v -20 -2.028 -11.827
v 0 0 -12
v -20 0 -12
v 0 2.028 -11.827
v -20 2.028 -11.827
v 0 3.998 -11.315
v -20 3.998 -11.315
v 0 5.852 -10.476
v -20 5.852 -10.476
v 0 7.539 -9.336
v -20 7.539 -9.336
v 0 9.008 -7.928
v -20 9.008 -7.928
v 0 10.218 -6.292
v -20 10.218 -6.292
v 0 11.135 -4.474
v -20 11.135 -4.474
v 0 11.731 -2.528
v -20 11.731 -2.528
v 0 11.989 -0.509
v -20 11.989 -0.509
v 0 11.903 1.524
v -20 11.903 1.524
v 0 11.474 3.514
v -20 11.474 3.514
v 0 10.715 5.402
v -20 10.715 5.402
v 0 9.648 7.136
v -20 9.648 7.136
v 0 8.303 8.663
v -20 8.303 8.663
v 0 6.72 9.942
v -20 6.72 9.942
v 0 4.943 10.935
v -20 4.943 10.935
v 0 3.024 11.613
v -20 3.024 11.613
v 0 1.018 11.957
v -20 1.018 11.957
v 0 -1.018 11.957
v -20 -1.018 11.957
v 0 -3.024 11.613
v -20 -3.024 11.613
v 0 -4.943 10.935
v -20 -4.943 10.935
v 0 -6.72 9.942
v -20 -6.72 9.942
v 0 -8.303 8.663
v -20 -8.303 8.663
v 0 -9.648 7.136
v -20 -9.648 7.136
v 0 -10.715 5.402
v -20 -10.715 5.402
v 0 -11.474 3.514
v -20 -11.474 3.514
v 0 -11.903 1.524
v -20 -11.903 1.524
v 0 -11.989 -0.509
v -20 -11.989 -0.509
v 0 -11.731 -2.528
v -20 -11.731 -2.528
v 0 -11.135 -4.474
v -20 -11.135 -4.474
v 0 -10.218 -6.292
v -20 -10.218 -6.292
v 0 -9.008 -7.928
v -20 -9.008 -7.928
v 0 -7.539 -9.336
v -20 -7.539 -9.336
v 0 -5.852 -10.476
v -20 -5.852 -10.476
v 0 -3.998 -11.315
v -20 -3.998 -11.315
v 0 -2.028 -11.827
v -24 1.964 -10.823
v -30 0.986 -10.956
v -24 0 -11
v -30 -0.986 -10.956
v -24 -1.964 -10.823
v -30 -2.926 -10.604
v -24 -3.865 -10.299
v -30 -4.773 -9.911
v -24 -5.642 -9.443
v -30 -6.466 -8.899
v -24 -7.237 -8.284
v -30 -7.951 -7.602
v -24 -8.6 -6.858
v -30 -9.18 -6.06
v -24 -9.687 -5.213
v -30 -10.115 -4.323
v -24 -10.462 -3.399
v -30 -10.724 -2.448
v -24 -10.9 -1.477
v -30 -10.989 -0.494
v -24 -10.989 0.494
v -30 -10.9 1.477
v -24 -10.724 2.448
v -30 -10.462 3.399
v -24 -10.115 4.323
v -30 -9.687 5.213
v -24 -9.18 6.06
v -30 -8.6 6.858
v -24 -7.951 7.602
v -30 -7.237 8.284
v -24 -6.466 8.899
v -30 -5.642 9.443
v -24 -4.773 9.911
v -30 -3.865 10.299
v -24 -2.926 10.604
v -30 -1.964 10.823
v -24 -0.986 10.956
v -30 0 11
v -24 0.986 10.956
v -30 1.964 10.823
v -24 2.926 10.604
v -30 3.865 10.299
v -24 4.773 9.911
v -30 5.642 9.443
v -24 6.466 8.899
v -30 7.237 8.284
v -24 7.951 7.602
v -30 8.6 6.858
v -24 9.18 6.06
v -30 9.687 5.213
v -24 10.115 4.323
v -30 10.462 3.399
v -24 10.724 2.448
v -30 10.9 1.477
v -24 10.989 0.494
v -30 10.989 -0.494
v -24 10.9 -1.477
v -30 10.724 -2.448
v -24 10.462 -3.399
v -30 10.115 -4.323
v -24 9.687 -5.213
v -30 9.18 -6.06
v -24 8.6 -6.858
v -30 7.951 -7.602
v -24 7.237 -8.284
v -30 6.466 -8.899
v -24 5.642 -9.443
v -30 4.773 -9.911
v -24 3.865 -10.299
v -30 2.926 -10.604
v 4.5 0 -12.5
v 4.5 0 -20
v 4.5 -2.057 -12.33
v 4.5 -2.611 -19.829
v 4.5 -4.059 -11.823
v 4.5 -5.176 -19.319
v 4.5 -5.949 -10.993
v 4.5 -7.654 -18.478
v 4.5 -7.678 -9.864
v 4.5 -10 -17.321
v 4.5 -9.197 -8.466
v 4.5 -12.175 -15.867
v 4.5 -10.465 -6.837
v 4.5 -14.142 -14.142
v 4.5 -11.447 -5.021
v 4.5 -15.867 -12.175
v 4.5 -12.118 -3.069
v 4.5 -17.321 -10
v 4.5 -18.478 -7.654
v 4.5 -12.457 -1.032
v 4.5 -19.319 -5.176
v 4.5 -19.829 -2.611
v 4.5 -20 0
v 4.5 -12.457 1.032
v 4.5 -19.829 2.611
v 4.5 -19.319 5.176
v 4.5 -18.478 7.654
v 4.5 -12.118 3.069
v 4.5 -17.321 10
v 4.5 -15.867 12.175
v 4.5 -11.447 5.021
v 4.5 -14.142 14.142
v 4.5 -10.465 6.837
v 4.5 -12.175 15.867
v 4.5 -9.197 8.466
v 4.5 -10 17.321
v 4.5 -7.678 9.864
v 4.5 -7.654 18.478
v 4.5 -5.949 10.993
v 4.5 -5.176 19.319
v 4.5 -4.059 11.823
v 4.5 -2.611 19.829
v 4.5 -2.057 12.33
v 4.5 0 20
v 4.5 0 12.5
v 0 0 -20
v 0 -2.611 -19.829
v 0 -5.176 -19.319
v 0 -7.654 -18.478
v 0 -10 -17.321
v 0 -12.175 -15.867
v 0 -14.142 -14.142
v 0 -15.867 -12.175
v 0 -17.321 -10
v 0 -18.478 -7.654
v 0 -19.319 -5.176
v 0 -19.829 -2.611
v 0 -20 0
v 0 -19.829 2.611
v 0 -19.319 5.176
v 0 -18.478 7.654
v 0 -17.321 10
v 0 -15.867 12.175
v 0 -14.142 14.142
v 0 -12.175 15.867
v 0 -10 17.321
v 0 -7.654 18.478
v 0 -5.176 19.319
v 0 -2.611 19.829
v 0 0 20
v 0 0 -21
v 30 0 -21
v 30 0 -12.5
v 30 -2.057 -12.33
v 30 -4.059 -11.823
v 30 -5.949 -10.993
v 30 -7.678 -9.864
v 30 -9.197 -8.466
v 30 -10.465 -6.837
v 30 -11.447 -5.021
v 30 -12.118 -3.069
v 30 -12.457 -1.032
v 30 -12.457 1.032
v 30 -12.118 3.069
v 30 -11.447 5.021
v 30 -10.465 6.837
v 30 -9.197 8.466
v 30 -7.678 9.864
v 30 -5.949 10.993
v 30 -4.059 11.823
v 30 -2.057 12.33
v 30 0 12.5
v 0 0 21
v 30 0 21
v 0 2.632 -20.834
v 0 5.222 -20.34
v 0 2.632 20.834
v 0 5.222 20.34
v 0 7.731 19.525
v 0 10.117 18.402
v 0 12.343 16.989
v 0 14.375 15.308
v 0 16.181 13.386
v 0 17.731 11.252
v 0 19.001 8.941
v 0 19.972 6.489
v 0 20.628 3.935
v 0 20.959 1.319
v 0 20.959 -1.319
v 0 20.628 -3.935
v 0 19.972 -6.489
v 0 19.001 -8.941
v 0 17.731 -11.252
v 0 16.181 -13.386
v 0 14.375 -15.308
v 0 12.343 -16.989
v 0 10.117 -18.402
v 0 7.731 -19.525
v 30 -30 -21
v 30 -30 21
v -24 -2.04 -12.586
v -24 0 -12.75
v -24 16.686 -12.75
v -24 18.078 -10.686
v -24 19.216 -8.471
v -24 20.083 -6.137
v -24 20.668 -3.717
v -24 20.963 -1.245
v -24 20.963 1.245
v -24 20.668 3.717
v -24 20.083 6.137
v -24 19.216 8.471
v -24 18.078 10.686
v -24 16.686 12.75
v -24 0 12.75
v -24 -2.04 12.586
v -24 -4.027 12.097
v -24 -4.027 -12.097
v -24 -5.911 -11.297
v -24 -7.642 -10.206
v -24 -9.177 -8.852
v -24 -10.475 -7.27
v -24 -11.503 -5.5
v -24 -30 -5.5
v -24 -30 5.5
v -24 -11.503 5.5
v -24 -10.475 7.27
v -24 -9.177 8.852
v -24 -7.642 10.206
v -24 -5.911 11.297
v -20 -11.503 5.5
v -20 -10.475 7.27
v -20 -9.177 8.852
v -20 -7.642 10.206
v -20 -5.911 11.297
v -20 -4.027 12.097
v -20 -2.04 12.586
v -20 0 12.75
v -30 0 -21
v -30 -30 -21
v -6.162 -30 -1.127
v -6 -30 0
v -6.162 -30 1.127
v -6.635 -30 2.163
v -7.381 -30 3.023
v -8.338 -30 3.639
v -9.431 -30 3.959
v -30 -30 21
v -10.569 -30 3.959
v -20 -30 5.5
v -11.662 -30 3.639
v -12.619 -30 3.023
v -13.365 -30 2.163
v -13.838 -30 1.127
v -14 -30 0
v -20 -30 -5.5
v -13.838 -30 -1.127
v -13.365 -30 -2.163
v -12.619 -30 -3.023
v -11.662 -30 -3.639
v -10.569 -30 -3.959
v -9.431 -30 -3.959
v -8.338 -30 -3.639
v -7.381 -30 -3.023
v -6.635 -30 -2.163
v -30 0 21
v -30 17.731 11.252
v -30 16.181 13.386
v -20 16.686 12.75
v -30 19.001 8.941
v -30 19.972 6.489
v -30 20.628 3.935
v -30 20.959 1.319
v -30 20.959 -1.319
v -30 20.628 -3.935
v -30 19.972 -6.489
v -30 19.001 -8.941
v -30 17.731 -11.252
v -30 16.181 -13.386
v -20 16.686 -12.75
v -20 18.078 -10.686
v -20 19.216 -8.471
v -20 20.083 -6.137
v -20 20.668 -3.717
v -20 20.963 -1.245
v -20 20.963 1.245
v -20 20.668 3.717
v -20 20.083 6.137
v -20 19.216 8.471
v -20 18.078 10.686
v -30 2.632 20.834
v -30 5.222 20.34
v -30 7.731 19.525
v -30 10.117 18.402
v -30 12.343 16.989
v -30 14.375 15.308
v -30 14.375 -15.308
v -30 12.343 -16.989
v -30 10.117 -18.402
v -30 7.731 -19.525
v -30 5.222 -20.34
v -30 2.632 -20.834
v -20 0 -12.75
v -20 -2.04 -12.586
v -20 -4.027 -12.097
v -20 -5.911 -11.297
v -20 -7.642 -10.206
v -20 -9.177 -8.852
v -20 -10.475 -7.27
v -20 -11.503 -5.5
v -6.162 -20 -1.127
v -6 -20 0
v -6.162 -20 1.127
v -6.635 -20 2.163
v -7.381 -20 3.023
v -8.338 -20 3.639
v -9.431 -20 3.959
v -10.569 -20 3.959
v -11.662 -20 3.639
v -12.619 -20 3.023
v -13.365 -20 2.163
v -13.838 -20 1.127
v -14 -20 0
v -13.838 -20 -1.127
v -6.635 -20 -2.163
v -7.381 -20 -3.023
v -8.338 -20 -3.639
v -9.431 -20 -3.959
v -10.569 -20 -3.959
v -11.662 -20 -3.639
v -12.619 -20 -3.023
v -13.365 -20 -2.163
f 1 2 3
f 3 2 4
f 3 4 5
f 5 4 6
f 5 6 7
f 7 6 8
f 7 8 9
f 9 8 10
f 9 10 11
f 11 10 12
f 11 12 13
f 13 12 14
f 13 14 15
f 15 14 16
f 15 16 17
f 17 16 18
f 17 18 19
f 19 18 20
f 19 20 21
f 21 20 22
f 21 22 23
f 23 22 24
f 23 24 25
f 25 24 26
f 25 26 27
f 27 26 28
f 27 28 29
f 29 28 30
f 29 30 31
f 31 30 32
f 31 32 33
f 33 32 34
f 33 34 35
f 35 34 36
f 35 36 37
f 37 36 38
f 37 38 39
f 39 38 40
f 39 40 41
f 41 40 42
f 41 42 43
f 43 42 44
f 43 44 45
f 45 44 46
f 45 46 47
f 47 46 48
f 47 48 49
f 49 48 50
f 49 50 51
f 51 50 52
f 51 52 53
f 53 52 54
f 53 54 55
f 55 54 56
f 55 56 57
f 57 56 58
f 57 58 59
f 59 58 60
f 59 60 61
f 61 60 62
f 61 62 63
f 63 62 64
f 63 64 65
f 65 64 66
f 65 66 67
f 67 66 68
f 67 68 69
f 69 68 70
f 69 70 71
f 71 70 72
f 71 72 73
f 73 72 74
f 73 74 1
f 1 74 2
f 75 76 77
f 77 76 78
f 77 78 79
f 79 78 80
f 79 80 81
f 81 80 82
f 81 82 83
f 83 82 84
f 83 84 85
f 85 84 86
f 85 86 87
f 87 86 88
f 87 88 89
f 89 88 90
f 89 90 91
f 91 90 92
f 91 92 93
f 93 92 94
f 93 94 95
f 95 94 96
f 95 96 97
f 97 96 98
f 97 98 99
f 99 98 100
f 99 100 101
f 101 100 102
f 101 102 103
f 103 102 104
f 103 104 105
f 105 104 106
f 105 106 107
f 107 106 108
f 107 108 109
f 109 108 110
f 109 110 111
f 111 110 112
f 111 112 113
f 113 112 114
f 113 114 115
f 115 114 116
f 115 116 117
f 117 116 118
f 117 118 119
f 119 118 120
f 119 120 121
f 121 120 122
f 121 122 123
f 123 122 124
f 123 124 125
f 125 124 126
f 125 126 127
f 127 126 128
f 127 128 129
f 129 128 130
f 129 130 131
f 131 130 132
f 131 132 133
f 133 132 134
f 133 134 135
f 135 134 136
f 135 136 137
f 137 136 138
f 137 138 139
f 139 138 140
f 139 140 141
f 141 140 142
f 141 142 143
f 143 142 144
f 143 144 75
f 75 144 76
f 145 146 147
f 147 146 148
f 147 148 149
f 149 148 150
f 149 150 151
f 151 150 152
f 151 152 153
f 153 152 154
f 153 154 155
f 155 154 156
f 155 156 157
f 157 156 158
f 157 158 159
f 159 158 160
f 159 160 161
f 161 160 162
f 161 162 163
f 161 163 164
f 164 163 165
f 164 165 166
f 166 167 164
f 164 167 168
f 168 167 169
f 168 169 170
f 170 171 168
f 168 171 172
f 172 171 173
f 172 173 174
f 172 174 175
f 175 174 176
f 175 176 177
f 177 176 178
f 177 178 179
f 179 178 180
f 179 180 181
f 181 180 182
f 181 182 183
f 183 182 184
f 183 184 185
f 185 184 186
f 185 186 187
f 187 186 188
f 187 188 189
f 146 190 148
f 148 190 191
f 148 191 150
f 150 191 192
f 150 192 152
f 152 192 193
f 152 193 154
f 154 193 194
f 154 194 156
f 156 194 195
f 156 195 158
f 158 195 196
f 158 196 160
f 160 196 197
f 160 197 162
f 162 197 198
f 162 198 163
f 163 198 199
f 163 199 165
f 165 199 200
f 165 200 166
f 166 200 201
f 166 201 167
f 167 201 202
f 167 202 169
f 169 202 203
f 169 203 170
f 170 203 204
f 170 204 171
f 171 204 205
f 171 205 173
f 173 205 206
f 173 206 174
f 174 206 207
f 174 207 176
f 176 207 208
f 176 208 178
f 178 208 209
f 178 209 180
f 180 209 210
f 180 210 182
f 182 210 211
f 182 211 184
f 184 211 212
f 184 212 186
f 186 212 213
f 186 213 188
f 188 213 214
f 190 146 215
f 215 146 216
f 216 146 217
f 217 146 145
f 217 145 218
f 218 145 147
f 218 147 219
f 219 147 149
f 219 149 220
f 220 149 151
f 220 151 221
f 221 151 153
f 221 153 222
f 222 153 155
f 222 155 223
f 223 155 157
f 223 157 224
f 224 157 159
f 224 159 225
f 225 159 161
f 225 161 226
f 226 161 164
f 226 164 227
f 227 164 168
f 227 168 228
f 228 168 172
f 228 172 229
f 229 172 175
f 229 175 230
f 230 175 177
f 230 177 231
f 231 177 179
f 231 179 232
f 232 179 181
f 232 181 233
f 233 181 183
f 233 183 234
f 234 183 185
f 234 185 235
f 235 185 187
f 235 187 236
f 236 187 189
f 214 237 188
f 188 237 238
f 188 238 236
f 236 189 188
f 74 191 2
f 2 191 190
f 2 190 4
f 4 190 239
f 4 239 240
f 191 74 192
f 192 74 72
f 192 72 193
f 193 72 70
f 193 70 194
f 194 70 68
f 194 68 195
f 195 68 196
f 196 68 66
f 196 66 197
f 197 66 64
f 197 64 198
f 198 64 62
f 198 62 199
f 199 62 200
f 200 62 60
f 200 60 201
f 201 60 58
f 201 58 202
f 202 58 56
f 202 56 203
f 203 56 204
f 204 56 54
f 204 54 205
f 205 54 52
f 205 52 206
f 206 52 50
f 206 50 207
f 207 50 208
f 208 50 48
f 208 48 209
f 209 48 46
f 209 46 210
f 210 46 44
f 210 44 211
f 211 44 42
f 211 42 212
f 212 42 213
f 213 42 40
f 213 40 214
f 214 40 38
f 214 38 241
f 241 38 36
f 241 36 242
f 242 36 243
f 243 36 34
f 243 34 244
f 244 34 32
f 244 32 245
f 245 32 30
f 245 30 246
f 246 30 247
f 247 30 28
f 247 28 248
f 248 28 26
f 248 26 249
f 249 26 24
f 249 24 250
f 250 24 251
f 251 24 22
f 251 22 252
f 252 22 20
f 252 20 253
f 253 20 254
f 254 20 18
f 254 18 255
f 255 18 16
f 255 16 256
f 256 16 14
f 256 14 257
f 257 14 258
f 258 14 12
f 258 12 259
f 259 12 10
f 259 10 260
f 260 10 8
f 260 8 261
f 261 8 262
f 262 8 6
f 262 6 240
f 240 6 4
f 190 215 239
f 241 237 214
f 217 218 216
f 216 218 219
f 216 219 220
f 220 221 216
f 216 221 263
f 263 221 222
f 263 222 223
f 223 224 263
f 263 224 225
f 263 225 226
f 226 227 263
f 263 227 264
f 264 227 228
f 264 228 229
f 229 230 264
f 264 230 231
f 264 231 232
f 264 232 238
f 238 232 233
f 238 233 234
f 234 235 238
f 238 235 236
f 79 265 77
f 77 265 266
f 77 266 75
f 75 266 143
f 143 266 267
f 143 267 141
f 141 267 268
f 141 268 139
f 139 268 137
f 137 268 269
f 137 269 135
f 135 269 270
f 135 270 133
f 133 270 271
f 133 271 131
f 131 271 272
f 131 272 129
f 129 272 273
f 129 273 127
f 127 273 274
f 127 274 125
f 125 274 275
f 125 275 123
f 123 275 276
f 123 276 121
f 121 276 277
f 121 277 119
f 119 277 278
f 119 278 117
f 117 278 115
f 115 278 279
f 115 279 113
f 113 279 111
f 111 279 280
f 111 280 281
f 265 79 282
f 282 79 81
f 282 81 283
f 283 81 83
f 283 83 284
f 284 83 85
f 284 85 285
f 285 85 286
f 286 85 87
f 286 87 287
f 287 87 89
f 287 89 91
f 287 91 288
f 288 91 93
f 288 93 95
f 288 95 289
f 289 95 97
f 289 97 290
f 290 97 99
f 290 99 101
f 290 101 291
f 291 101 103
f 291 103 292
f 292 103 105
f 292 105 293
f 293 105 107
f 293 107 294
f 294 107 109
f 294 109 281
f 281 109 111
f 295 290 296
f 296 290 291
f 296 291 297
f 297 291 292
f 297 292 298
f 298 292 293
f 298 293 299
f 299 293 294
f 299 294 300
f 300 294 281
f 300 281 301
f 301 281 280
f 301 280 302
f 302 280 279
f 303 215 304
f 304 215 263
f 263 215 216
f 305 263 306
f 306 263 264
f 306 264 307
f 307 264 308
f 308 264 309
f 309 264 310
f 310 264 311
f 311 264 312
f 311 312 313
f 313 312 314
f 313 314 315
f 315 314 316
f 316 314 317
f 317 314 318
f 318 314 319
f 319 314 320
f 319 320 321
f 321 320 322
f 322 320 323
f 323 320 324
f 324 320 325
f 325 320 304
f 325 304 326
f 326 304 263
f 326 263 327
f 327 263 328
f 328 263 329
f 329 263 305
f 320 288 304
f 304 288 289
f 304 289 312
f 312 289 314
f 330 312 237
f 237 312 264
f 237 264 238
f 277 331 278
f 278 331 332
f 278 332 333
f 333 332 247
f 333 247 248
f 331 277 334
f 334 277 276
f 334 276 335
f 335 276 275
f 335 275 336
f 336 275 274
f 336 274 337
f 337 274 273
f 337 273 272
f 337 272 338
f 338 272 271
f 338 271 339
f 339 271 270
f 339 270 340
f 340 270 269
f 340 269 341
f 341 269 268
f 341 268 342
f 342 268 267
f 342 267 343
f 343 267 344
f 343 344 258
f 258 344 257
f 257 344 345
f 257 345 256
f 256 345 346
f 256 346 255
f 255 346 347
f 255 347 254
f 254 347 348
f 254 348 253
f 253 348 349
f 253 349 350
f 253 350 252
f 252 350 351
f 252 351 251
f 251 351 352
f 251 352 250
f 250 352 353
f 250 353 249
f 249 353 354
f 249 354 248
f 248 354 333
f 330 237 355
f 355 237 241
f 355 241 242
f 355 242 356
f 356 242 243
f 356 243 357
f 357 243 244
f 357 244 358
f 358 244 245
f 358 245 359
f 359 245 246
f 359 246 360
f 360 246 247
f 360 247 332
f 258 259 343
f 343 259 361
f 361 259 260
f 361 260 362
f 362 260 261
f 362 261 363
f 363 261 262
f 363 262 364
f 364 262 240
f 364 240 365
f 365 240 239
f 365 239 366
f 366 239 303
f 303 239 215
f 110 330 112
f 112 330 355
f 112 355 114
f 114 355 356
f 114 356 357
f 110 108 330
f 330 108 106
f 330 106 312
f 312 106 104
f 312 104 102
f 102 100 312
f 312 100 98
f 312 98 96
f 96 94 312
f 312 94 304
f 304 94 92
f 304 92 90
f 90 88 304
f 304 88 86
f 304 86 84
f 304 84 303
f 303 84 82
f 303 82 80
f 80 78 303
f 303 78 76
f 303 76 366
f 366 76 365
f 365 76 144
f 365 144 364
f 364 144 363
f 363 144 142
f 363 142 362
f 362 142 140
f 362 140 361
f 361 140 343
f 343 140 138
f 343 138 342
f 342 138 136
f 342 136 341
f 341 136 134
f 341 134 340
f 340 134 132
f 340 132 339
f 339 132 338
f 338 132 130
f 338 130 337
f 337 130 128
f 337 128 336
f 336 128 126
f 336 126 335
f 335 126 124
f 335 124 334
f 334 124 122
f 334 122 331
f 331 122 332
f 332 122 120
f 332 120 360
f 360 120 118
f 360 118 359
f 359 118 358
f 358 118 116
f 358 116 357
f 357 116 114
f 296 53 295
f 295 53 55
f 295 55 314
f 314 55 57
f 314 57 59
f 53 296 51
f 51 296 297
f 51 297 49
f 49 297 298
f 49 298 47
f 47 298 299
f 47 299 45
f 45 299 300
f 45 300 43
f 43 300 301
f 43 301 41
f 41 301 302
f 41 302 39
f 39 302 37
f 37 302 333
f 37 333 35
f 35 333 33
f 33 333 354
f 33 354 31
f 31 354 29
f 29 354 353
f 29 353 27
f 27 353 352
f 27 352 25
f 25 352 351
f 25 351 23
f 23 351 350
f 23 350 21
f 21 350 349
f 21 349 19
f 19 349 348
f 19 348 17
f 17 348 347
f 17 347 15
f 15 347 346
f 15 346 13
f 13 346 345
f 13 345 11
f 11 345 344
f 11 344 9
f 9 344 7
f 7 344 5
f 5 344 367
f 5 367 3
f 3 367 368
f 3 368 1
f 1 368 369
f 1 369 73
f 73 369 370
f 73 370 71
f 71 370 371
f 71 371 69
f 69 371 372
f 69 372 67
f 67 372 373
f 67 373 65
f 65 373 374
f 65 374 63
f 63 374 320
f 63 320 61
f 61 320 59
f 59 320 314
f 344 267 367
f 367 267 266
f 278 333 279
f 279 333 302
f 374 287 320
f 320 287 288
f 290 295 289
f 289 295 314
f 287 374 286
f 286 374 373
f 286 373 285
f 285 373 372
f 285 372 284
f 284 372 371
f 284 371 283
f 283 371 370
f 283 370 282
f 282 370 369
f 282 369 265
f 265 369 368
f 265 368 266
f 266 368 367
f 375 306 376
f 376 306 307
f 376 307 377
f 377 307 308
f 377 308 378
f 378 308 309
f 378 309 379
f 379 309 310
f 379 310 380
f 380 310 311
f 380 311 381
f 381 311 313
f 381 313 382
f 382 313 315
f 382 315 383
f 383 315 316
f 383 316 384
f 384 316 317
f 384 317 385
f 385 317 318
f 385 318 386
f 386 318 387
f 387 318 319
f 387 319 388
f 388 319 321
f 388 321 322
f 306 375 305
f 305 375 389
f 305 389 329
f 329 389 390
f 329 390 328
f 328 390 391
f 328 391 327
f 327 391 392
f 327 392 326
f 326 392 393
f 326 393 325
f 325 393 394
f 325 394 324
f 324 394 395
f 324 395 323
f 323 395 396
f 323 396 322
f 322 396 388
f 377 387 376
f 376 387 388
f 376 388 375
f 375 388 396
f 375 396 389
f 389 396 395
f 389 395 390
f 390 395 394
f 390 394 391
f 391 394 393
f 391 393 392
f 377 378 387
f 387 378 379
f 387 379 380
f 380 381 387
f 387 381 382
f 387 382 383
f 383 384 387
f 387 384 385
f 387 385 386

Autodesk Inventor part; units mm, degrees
ref_plane "YZ Plane" through (0, 0, 0) normal (1, 0, 0) x (0, 1, 0)
ref_plane "XZ Plane" through (0, 0, 0) normal (0, 1, 0) x (-1, 0, 0)
ref_plane "XY Plane" through (0, 0, 0) normal (0, 0, 1) x (1, 0, 0)
sketch "スケッチ1" plane through (0, 0, 0) normal (1, 0, 0) x (0, 1, 0)
  line L0 (-30, 0) -> (-30, 21)
  line L1 (-30, 21) -> (0, 21)
  line L2 (0, 21) -> (0, 0)
  line L3 (-30, 0) -> (-30, -21)
  line L4 (-30, -21) -> (0, -21)
  line L5 (0, -21) -> (0, 0)
  arc A0 (0, -21) -> (0, 21) centre (0, 0) ccw
  dimension "d0" = 30
  dimension "d1" = 21
extrude "押し出し1" add sketch "スケッチ1" along normal mid plane 60
sketch "スケッチ2" plane through (30, 0, 0) normal (1, 0, 0) x (0, 0, -1)
  arc A0 (-12.5, 0) -> (12.5, 0) centre (0, 0) ccw
  arc A1 (21, 0) -> (-21, 0) centre (0, 0) ccw
  line L0 (-21, 0) -> (-12.5, 0)
  line L1 (12.5, 0) -> (21, 0)
  dimension "d4" = 25
extrude "押し出し2" cut sketch "スケッチ2" against normal blind 30
sketch "スケッチ3" plane through (0, 0, 0) normal (0, 1, 0) x (-1, 0, 0)
  line L0 (0, 0) -> (-4.5, 0)
  line L1 (-4.5, 0) -> (-4.5, 20)
  line L2 (-4.5, 20) -> (0, 20)
  line L3 (0, 20) -> (0, 0)
  line L4 (42, 0) -> (-42, 0) projected
  dimension "d7" = 4.5
  dimension "d8" = 20
revolve "回転1" cut sketch "スケッチ3" angle 360 about axis through (-10, 0, 0) along (1, 0, 0)
sketch "スケッチ4" plane through (0, 0, 0) normal (1, 0, 0) x (0, 0, -1)
  circle A0 centre (0, 0) radius 12
  dimension "d15" = 24
extrude "押し出し3" cut sketch "スケッチ4" against normal blind 20
sketch "スケッチ6" plane through (0, 0, 0) normal (0, 1, 0) x (-1, 0, 0)
  line L0 (20, -12) -> (20, 12) projected
  line L1 (20, 0) -> (24, 0)
  line L2 (24, 0) -> (24, 12.75)
  line L3 (24, 12.75) -> (20, 12.75)
  line L4 (20, 12.75) -> (20, 0)
  line L5 (42, 0) -> (-42, 0) projected
  point P0 (0, 0)
  dimension "d16" = 4
  dimension "d17" = 12.75
revolve "回転3" cut sketch "スケッチ6" angle 360 about axis through (-10, 0, 0) along (1, 0, 0)
sketch "スケッチ7" plane through (-30, 0, 0) normal (-1, 0, 0) x (0, 0, 1)
  circle A0 centre (0, 0) radius 11
  dimension "d19" = 22
extrude "押し出し4" cut sketch "スケッチ7" against normal through all
sketch "スケッチ8" plane through (0, 0, 0) normal (0, 1, 0) x (-1, 0, 0)
  line L0 (20, 12.75) -> (24, 12.75) projected
  line L1 (24, 0) -> (24, 12.75)
  line L2 (24, 12.75) -> (20, 12.75)
  line L3 (20, 12.75) -> (20, 0)
  line L4 (20, -12.75) -> (24, -12.75)
  line L5 (24, 0) -> (24, -12.75)
  line L6 (20, -12.75) -> (20, 0)
  point P0 (0, 0)
extrude "押し出し5" cut sketch "スケッチ8" along normal through all
sketch "スケッチ9" plane through (0, 0, 0) normal (0, 1, 0) x (-1, 0, 0)
  line L0 (24, 0) -> (24, -5.5)
  line L1 (24, -5.5) -> (20, -5.5)
  line L2 (20, -5.5) -> (20, 0)
  line L3 (24, 0) -> (24, 5.5)
  line L4 (24, 5.5) -> (20, 5.5)
  line L5 (20, 5.5) -> (20, 0)
  point P0 (0, 0)
  dimension "d24" = 4
  dimension "d25" = 5.5
extrude "押し出し6" cut sketch "スケッチ9" against normal through all
sketch "スケッチ10" plane through (-30, -30, -21) normal (0, -1, 0) x (1, 0, 0)
  line L0 (30, 21) -> (20, 21) construction
  circle A0 centre (20, 21) radius 4
  dimension "d28" = 10
  dimension "d29" = 8
extrude "押し出し7" cut sketch "スケッチ10" against normal blind 10
properties part number "raman-colimeter-holder" material "ABS プラスチック"
